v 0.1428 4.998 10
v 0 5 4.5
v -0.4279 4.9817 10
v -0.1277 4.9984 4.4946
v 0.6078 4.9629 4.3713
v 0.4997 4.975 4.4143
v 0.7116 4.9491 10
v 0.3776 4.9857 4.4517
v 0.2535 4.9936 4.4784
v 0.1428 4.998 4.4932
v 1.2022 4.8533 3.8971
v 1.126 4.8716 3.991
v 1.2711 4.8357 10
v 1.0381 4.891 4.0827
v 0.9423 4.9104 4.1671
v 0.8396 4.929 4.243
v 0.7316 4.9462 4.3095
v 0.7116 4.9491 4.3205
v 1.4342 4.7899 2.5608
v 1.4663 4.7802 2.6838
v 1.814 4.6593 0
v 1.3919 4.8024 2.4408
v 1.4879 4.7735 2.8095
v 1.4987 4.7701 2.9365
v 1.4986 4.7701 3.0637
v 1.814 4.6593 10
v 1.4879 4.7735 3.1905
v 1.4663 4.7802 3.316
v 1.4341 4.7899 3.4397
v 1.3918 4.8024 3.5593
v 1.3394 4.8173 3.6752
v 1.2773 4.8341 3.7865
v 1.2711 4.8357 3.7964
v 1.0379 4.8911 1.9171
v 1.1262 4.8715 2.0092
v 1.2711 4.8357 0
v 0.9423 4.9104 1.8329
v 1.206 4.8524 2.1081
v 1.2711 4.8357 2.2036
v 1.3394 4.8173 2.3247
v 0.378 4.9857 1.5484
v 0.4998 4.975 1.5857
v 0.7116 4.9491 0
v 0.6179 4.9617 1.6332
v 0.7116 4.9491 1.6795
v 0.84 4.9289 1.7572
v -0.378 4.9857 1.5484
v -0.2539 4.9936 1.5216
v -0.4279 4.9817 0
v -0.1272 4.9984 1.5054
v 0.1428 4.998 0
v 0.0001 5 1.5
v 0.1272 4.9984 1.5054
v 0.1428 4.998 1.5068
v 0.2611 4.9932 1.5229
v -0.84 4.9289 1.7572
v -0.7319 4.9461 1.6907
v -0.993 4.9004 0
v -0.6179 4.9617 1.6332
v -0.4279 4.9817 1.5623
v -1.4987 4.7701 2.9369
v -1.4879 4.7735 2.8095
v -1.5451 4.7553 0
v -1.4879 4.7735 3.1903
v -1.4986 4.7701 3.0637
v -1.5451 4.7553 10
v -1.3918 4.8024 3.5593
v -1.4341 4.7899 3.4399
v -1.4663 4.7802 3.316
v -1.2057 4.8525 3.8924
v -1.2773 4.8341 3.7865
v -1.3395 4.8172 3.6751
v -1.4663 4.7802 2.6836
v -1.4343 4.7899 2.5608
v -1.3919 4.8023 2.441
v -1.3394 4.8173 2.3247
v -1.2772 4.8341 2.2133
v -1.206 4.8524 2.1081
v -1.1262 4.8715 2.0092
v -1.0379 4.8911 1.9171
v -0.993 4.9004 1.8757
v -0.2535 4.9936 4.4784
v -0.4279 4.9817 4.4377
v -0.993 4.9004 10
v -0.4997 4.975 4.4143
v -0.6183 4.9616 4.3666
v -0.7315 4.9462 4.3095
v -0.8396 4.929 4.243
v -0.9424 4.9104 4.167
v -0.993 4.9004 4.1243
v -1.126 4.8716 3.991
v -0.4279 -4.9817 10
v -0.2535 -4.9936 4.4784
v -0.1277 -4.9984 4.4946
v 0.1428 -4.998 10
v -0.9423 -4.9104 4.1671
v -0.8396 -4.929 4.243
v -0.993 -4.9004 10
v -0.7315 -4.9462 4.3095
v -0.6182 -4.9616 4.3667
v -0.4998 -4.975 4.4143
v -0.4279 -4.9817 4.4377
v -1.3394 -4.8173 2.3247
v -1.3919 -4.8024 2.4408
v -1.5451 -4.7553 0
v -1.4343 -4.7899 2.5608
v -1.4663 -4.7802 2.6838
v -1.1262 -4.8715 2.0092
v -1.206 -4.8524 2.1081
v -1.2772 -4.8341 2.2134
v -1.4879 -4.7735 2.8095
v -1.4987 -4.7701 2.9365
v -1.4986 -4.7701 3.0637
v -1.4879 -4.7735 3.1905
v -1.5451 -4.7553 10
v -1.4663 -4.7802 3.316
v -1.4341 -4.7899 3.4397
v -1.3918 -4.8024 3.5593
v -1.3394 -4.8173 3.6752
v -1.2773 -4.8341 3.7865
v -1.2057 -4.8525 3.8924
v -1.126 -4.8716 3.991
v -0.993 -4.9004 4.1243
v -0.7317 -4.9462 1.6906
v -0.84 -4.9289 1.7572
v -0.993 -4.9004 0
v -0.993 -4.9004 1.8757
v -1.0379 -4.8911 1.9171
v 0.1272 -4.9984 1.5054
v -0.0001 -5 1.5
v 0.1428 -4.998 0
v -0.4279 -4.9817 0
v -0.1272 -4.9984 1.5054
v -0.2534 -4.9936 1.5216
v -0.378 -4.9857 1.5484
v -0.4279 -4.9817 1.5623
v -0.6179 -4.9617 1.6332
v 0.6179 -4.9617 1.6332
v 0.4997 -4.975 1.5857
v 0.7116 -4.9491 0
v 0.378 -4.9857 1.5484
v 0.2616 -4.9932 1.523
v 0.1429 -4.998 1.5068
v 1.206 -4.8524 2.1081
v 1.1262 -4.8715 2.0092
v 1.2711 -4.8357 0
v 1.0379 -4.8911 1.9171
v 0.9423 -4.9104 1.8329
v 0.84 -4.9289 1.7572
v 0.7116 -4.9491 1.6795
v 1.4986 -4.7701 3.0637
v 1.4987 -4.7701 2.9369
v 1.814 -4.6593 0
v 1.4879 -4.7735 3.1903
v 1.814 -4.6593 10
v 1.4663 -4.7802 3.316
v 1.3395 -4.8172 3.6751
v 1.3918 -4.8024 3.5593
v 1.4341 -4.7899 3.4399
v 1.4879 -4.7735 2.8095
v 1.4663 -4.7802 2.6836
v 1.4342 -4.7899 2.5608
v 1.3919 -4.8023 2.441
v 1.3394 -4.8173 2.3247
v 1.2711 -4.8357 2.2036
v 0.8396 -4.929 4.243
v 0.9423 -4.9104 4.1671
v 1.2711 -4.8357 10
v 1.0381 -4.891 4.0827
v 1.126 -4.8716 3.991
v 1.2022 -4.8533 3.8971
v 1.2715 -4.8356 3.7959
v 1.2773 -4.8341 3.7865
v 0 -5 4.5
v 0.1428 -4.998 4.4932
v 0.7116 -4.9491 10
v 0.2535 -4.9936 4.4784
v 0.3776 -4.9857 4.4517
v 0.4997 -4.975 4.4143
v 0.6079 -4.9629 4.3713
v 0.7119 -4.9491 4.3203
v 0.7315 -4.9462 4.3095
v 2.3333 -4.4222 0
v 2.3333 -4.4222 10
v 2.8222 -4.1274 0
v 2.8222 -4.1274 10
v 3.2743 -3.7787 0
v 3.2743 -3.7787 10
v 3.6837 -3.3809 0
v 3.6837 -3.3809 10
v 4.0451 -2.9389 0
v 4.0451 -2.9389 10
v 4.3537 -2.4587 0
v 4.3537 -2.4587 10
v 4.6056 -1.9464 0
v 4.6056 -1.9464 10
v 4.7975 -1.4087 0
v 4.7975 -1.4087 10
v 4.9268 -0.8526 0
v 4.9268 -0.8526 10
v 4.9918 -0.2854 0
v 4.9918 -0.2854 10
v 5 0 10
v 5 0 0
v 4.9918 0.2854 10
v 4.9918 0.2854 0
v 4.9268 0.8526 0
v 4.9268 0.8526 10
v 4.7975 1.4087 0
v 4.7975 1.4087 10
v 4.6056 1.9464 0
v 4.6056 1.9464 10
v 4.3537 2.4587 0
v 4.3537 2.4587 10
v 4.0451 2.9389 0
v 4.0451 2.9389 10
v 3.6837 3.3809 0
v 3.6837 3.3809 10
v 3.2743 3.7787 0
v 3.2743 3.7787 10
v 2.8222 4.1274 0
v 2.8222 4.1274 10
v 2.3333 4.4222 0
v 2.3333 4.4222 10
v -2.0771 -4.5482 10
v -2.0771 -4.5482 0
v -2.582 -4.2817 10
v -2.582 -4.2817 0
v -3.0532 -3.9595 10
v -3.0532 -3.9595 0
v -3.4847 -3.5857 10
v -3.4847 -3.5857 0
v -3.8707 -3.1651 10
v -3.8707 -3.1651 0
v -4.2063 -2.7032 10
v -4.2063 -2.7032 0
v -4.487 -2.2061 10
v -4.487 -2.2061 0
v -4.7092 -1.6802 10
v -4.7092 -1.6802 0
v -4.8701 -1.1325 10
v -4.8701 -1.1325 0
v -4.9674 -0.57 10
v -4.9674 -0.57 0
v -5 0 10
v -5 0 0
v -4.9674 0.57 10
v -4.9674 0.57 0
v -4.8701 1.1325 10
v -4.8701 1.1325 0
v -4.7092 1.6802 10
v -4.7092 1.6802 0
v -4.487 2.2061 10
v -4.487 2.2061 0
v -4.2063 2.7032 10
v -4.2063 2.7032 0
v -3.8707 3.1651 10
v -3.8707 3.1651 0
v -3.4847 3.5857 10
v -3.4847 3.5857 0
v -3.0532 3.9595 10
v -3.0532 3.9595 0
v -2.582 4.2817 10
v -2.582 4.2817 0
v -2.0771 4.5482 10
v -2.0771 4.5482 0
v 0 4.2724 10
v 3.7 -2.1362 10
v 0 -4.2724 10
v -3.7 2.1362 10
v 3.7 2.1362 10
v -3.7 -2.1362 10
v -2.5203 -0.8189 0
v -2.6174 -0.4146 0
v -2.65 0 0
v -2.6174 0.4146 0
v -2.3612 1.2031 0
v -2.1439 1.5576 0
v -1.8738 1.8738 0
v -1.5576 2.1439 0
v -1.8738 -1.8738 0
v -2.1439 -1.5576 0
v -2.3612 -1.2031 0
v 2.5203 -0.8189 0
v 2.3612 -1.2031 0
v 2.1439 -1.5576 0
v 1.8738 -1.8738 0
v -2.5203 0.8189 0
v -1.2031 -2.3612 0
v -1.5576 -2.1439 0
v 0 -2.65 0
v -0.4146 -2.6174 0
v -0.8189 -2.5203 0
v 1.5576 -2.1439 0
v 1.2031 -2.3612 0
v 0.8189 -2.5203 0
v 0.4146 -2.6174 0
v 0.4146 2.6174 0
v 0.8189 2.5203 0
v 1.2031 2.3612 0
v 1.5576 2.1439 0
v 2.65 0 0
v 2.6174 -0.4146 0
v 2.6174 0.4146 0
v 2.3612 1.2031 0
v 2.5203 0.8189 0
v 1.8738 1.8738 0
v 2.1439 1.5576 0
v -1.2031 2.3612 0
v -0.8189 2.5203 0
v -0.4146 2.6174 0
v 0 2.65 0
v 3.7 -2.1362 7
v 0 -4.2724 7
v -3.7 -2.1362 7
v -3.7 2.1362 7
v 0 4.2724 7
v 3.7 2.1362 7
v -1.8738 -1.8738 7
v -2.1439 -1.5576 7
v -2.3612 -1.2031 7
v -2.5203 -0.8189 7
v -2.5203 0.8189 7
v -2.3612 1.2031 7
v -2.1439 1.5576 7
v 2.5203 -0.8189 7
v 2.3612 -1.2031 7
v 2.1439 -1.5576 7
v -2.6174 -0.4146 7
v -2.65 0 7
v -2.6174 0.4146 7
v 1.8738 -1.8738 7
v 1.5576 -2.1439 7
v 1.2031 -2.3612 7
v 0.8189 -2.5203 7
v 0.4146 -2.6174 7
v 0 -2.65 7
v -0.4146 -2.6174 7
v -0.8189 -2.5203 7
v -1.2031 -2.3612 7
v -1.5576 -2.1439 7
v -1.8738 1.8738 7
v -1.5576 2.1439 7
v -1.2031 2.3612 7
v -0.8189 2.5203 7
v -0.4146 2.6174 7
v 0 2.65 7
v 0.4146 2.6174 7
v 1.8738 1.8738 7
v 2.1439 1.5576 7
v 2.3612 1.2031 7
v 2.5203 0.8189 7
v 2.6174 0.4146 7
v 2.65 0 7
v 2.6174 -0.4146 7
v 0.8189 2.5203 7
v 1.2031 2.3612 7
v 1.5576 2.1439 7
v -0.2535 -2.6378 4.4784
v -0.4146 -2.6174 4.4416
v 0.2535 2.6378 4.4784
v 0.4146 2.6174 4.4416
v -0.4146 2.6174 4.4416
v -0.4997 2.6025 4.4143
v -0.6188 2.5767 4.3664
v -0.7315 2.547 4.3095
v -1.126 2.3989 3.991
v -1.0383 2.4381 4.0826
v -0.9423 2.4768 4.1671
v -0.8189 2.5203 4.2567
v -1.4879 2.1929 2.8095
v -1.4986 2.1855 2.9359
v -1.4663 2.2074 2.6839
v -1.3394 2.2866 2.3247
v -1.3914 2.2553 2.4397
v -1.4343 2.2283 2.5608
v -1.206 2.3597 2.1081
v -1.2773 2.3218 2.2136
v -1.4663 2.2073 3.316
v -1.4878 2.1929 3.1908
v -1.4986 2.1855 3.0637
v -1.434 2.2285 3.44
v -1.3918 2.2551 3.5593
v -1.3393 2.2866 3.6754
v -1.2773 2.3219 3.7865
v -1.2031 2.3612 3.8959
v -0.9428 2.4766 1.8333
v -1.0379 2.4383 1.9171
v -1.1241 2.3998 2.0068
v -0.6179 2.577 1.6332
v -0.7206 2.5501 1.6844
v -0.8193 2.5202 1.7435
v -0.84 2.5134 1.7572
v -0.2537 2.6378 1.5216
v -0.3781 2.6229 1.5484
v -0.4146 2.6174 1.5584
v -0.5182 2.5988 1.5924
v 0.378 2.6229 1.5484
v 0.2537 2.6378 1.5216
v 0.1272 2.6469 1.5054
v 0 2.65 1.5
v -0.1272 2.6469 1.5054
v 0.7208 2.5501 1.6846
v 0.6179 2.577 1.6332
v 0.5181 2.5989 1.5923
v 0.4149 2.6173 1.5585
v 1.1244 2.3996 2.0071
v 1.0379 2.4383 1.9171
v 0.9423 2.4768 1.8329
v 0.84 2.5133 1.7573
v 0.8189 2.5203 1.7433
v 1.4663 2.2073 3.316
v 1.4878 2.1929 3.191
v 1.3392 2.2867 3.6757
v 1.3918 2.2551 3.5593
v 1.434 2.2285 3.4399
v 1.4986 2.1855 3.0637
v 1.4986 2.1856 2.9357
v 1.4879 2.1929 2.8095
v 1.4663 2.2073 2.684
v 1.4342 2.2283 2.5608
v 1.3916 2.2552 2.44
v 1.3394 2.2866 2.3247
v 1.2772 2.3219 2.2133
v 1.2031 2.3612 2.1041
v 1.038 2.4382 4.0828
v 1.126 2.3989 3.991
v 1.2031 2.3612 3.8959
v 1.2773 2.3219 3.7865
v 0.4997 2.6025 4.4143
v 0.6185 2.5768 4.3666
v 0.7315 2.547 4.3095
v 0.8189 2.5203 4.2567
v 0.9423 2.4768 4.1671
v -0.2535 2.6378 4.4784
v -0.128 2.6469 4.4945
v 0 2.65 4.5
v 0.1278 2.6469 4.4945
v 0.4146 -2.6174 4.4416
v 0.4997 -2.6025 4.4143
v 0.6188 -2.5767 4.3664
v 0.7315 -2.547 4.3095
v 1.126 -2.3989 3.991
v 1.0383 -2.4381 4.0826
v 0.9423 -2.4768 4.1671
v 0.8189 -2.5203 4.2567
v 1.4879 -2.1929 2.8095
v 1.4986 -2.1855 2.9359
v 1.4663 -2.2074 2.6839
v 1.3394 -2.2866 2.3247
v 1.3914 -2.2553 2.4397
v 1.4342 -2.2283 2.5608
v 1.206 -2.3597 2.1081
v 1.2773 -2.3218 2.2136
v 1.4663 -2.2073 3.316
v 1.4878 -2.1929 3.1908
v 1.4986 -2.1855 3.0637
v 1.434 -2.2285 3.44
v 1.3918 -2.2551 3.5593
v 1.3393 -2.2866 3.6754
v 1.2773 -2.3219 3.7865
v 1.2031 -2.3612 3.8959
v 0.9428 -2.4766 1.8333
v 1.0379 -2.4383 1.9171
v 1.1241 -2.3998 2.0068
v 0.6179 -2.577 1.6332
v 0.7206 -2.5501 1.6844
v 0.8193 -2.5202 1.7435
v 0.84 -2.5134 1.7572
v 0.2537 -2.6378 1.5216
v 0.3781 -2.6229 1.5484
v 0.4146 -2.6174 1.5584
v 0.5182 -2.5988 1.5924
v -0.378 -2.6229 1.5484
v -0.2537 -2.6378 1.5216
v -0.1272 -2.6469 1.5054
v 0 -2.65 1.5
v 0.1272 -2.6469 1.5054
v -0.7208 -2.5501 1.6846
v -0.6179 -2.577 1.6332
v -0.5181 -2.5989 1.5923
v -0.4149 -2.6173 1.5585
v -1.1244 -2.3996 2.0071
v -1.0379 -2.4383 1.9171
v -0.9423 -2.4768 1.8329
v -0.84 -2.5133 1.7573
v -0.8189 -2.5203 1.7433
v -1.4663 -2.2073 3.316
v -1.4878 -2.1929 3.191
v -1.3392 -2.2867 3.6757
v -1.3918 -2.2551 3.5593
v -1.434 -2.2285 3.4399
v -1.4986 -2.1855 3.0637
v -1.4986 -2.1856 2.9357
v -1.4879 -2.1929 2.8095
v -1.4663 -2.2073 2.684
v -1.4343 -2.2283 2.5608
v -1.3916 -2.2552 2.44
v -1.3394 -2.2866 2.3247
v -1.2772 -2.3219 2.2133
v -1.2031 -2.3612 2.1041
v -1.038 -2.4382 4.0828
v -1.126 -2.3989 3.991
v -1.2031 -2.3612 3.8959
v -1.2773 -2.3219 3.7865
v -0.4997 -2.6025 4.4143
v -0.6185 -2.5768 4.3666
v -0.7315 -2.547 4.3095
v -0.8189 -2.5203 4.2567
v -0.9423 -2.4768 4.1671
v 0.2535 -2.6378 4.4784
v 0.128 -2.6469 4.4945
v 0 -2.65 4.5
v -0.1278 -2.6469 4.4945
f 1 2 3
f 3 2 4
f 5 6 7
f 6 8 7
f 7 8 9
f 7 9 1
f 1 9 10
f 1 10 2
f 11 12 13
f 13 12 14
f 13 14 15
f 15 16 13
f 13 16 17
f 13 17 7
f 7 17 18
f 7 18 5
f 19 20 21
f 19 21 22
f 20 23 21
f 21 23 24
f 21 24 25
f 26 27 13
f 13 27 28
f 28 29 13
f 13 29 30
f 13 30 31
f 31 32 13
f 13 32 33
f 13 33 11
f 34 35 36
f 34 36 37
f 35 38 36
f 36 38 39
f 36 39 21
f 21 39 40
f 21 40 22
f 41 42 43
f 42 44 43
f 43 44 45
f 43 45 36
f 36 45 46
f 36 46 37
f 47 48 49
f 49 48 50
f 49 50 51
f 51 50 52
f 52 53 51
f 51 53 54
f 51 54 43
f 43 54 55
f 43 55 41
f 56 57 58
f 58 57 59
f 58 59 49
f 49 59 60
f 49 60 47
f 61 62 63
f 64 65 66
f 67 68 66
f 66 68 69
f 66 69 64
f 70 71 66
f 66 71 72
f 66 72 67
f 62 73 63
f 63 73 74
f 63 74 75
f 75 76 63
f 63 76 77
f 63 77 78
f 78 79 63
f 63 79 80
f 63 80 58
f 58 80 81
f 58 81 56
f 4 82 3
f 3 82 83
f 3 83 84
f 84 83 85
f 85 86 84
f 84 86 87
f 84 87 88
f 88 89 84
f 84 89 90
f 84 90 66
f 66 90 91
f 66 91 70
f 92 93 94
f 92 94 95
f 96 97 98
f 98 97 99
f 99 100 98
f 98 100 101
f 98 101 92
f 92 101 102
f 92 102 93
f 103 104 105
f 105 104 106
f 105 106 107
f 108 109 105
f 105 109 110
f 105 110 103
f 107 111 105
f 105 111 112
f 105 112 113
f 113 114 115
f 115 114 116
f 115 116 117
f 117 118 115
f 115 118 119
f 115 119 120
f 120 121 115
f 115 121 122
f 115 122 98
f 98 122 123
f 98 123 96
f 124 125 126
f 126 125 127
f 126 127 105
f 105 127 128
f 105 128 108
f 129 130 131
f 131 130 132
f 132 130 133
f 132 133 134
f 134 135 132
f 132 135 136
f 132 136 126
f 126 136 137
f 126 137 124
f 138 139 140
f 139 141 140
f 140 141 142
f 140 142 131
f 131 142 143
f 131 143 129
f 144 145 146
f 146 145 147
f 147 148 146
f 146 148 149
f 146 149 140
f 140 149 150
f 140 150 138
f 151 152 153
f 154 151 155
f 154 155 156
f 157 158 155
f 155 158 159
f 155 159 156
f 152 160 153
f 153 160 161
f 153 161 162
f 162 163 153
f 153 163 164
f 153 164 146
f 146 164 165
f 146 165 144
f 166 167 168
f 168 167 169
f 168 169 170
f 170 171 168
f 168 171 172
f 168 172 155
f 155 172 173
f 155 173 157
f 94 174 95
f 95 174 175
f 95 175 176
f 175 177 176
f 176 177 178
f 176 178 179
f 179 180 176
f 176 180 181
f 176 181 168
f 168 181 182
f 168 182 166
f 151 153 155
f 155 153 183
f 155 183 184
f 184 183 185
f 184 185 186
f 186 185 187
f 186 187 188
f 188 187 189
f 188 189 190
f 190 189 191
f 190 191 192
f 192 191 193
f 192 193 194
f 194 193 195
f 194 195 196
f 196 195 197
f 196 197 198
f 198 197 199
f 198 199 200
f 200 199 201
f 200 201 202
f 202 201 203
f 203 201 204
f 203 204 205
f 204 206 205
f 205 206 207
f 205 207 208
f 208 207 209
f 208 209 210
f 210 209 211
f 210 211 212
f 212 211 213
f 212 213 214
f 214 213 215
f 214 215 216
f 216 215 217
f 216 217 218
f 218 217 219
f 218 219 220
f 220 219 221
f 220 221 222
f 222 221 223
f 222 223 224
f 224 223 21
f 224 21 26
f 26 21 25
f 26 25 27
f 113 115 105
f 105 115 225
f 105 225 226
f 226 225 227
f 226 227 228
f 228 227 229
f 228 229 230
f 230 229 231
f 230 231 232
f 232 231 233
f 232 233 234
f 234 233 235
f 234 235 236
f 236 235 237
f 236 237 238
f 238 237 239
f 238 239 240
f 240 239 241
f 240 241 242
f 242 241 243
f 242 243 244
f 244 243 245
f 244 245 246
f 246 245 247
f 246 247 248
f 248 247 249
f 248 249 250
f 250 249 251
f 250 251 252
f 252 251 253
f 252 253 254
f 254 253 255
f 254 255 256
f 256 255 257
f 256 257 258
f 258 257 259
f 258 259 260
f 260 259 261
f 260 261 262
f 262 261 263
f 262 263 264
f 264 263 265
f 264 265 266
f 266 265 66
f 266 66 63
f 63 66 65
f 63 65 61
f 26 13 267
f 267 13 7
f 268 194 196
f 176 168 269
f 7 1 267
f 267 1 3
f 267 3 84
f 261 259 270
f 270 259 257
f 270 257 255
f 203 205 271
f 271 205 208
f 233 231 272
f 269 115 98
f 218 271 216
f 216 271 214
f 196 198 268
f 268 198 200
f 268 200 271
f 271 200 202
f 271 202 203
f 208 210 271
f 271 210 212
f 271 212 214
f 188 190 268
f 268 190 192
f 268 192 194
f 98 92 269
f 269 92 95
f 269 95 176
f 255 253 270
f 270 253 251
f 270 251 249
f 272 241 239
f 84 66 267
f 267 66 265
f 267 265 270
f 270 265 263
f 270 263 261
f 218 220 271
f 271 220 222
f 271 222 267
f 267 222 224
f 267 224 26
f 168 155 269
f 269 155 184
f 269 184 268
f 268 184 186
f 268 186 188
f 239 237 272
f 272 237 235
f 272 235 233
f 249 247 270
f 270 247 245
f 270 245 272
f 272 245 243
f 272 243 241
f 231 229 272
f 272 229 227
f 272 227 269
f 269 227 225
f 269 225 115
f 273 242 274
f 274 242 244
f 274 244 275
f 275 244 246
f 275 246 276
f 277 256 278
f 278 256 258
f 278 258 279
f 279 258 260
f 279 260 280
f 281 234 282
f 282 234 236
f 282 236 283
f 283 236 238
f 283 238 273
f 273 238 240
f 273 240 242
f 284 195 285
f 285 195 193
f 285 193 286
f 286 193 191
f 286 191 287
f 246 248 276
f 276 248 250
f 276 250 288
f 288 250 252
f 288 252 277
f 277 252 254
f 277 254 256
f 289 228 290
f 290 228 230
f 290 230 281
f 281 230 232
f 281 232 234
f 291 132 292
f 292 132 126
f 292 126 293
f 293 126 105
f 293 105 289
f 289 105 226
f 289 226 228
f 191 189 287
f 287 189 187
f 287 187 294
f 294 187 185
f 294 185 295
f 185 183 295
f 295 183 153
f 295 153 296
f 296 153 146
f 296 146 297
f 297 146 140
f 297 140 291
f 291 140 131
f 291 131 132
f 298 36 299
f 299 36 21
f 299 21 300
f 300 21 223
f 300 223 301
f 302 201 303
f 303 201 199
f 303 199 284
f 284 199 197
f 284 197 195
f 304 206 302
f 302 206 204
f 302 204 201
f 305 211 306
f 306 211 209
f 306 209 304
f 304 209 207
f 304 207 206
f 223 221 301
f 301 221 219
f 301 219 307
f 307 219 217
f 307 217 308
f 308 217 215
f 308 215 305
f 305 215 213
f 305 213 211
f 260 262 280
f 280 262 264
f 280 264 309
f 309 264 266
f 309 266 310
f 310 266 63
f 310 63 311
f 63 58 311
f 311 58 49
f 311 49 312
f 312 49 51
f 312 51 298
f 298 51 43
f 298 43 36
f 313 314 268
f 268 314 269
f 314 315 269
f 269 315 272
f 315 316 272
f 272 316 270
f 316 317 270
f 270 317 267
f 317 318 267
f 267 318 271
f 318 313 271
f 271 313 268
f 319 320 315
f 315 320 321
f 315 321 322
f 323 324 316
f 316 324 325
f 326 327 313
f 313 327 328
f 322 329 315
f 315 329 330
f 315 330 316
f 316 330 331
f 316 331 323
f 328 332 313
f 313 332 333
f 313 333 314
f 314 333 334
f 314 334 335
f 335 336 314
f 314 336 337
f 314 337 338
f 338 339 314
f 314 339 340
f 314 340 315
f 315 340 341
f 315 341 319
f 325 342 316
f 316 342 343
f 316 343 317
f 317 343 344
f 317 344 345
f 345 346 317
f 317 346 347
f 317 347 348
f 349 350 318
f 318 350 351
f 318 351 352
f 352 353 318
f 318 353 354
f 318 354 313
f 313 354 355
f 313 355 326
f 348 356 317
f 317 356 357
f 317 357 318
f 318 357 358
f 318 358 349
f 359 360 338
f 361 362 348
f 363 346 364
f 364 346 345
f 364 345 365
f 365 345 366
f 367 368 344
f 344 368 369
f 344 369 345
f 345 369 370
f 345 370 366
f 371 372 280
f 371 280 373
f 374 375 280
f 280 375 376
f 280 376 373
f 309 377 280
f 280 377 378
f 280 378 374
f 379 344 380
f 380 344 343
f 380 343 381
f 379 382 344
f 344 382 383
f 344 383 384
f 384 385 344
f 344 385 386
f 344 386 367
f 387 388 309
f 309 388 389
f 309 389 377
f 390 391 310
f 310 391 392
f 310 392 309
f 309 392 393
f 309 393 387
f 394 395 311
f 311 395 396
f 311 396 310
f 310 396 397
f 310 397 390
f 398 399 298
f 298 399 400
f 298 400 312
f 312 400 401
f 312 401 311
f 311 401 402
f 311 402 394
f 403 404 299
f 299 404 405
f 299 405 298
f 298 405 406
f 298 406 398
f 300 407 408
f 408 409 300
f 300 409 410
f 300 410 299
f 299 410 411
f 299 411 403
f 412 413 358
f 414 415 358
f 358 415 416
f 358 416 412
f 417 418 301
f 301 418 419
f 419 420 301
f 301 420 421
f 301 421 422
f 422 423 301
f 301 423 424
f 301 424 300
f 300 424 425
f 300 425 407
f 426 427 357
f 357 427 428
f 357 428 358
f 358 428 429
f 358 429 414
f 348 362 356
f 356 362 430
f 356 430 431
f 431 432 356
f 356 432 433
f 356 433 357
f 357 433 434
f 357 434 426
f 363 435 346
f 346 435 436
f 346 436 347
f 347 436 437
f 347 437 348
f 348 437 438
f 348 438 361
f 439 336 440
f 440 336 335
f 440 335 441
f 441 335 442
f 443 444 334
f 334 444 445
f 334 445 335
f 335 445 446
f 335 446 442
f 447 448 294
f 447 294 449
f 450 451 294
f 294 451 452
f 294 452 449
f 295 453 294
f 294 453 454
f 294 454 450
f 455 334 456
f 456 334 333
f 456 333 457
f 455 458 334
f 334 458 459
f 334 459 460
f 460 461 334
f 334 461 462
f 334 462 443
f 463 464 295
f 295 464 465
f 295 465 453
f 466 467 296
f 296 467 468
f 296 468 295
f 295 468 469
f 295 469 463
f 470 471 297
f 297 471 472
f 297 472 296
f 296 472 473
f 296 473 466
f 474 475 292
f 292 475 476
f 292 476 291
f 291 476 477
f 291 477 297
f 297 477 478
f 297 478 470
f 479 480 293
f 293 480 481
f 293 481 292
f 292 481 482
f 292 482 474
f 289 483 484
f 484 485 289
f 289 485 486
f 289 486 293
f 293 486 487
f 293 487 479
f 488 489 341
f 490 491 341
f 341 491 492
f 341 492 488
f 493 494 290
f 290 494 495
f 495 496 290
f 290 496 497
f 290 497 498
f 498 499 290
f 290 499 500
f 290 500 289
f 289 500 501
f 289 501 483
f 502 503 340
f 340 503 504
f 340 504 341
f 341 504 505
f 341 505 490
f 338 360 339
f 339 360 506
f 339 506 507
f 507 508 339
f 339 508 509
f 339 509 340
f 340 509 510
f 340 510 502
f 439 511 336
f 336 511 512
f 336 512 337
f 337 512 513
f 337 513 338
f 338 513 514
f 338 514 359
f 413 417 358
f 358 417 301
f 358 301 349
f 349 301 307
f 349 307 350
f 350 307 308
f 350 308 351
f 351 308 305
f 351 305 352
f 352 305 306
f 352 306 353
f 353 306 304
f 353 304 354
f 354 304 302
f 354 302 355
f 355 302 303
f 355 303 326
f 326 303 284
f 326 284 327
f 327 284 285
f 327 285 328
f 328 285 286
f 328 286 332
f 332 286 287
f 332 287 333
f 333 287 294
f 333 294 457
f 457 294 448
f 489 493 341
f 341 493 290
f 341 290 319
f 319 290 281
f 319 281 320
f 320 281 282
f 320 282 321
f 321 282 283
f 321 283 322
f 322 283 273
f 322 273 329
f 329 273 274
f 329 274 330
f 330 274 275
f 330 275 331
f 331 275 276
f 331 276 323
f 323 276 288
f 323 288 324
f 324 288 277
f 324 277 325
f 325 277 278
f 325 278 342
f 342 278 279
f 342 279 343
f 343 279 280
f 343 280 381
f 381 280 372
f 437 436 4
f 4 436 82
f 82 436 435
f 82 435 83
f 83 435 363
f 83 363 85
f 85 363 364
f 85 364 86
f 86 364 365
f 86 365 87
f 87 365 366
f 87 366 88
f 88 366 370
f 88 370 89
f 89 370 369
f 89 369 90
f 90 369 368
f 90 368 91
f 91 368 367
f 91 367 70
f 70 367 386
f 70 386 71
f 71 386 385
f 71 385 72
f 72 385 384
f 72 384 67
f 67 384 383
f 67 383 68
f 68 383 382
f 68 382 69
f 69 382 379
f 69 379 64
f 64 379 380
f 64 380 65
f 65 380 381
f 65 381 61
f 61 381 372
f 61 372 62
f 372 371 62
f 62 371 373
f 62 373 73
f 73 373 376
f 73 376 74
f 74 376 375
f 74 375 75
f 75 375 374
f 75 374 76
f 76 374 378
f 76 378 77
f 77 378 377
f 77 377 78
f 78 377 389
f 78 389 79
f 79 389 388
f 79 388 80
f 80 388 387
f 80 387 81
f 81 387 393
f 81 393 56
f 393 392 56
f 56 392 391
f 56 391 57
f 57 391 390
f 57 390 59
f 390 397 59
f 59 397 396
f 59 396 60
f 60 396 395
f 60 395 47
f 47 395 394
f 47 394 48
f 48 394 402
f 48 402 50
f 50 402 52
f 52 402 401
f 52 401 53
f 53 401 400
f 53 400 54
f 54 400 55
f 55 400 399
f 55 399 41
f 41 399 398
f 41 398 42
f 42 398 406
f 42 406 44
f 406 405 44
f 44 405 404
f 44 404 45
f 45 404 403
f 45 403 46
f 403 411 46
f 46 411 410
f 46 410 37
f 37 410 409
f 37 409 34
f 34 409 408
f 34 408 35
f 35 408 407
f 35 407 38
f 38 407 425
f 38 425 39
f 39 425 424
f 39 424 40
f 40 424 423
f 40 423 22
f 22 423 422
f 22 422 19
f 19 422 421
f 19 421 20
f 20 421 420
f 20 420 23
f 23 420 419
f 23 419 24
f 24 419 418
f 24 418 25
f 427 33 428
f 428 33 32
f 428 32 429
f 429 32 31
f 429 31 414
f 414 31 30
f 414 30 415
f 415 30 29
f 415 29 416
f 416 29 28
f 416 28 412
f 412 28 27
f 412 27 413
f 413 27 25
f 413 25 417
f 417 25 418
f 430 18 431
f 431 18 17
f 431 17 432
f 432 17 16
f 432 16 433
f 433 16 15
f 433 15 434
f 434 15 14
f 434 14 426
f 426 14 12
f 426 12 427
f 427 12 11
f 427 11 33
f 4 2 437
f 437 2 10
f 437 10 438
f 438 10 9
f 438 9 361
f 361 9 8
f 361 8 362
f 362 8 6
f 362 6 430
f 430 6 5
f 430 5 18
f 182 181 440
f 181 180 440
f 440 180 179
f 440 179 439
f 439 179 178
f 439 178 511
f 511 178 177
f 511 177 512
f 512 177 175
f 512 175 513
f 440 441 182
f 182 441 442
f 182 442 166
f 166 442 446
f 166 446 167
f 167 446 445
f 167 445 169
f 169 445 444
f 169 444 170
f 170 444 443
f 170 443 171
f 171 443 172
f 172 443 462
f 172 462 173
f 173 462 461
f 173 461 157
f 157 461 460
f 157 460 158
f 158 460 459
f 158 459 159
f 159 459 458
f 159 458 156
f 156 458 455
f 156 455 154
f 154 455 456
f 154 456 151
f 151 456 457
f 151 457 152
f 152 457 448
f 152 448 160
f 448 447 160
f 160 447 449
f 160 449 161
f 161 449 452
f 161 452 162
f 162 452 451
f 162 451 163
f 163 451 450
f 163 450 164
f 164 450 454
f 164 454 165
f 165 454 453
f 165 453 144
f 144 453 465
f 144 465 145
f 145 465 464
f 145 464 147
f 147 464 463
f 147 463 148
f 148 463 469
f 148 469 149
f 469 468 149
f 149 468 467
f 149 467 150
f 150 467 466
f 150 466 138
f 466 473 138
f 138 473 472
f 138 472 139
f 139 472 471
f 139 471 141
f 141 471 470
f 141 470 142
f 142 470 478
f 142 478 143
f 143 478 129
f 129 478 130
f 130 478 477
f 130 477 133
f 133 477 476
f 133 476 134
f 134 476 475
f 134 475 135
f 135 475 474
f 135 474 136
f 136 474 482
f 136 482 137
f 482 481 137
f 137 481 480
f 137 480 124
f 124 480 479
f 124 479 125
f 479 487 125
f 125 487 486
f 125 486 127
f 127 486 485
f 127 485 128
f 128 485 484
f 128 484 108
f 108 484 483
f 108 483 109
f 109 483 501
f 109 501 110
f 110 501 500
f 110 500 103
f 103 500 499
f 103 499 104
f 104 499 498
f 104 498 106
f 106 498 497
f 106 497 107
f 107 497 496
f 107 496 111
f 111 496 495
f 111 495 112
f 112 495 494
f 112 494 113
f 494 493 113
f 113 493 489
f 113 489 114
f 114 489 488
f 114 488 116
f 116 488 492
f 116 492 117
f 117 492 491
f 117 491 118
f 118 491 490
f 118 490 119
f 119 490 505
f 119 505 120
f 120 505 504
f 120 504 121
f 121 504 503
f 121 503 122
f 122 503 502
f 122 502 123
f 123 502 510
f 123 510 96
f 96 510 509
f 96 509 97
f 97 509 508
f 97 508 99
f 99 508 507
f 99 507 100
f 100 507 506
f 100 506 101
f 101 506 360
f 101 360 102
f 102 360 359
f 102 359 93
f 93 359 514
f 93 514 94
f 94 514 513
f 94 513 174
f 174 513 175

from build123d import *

# Parameters (mm, degrees)
ESQUISSE1_R                  = 5
BOSS_EXTRU_1_DEPTH           = 10
ENL_V_MAT_EXTRU_1_DEPTH      = 3
ESQUISSE3_R                  = 2.65
ENL_V_MAT_EXTRU_2_DEPTH      = 6
ENL_V_MAT_EXTRU_3_DEPTH      = 13.247448714
ENL_V_MAT_EXTRU_3_DEPTH_BACK = 13.247448714
ESQUISSE4_R                  = 1.5
ESQUISSE5_R                  = 2.65
ENL_V_MAT_EXTRU_4_DEPTH      = 10.273618668


with BuildPart() as part:
    # Esquisse1 → Boss.-Extru.1 (new body)
    with BuildSketch(Plane.XY):
        Circle(ESQUISSE1_R)
    extrude(amount=BOSS_EXTRU_1_DEPTH)

    # Esquisse2 → Enlèv. mat.-Extru.1 (cut)
    with BuildSketch(Plane.XY.offset(10)):
        Polygon((3.7, -2.136195996), (3.7, 2.136195996), (0, 4.272391992), (-3.7, 2.136195996), (-3.7, -2.136195996), (0, -4.272391992), align=None)
    extrude(amount=-ENL_V_MAT_EXTRU_1_DEPTH, mode=Mode.SUBTRACT)

    # Esquisse3 → Enlèv. mat.-Extru.2 (cut)
    with BuildSketch(Plane(origin=(0, 0, 0), x_dir=(-1, 0, 0), z_dir=(0, 0, -1))):
        Circle(ESQUISSE3_R)
    extrude(amount=-ENL_V_MAT_EXTRU_2_DEPTH, mode=Mode.SUBTRACT)

    # Esquisse4 → Enlèv. mat.-Extru.3 (cut, two sides: drawn at the far end of the back side and taken through both)
    with BuildSketch(Plane(origin=(0, 0, 0), x_dir=(1, 0, 0), z_dir=(0, 1, 0)).offset(-ENL_V_MAT_EXTRU_3_DEPTH_BACK)):
        with Locations(Location((0, -3, 0), (0, 0, 270))):
            Circle(ESQUISSE4_R)
    extrude(amount=ENL_V_MAT_EXTRU_3_DEPTH + ENL_V_MAT_EXTRU_3_DEPTH_BACK, mode=Mode.SUBTRACT)

    # Esquisse5 → Enlèv. mat.-Extru.4 (cut, through all)
    with BuildSketch(Plane(origin=(0, 0, 6), x_dir=(-1, 0, 0), z_dir=(0, 0, -1))):
        Circle(ESQUISSE5_R)
    extrude(amount=-ENL_V_MAT_EXTRU_4_DEPTH, mode=Mode.SUBTRACT)


solid = part.part
